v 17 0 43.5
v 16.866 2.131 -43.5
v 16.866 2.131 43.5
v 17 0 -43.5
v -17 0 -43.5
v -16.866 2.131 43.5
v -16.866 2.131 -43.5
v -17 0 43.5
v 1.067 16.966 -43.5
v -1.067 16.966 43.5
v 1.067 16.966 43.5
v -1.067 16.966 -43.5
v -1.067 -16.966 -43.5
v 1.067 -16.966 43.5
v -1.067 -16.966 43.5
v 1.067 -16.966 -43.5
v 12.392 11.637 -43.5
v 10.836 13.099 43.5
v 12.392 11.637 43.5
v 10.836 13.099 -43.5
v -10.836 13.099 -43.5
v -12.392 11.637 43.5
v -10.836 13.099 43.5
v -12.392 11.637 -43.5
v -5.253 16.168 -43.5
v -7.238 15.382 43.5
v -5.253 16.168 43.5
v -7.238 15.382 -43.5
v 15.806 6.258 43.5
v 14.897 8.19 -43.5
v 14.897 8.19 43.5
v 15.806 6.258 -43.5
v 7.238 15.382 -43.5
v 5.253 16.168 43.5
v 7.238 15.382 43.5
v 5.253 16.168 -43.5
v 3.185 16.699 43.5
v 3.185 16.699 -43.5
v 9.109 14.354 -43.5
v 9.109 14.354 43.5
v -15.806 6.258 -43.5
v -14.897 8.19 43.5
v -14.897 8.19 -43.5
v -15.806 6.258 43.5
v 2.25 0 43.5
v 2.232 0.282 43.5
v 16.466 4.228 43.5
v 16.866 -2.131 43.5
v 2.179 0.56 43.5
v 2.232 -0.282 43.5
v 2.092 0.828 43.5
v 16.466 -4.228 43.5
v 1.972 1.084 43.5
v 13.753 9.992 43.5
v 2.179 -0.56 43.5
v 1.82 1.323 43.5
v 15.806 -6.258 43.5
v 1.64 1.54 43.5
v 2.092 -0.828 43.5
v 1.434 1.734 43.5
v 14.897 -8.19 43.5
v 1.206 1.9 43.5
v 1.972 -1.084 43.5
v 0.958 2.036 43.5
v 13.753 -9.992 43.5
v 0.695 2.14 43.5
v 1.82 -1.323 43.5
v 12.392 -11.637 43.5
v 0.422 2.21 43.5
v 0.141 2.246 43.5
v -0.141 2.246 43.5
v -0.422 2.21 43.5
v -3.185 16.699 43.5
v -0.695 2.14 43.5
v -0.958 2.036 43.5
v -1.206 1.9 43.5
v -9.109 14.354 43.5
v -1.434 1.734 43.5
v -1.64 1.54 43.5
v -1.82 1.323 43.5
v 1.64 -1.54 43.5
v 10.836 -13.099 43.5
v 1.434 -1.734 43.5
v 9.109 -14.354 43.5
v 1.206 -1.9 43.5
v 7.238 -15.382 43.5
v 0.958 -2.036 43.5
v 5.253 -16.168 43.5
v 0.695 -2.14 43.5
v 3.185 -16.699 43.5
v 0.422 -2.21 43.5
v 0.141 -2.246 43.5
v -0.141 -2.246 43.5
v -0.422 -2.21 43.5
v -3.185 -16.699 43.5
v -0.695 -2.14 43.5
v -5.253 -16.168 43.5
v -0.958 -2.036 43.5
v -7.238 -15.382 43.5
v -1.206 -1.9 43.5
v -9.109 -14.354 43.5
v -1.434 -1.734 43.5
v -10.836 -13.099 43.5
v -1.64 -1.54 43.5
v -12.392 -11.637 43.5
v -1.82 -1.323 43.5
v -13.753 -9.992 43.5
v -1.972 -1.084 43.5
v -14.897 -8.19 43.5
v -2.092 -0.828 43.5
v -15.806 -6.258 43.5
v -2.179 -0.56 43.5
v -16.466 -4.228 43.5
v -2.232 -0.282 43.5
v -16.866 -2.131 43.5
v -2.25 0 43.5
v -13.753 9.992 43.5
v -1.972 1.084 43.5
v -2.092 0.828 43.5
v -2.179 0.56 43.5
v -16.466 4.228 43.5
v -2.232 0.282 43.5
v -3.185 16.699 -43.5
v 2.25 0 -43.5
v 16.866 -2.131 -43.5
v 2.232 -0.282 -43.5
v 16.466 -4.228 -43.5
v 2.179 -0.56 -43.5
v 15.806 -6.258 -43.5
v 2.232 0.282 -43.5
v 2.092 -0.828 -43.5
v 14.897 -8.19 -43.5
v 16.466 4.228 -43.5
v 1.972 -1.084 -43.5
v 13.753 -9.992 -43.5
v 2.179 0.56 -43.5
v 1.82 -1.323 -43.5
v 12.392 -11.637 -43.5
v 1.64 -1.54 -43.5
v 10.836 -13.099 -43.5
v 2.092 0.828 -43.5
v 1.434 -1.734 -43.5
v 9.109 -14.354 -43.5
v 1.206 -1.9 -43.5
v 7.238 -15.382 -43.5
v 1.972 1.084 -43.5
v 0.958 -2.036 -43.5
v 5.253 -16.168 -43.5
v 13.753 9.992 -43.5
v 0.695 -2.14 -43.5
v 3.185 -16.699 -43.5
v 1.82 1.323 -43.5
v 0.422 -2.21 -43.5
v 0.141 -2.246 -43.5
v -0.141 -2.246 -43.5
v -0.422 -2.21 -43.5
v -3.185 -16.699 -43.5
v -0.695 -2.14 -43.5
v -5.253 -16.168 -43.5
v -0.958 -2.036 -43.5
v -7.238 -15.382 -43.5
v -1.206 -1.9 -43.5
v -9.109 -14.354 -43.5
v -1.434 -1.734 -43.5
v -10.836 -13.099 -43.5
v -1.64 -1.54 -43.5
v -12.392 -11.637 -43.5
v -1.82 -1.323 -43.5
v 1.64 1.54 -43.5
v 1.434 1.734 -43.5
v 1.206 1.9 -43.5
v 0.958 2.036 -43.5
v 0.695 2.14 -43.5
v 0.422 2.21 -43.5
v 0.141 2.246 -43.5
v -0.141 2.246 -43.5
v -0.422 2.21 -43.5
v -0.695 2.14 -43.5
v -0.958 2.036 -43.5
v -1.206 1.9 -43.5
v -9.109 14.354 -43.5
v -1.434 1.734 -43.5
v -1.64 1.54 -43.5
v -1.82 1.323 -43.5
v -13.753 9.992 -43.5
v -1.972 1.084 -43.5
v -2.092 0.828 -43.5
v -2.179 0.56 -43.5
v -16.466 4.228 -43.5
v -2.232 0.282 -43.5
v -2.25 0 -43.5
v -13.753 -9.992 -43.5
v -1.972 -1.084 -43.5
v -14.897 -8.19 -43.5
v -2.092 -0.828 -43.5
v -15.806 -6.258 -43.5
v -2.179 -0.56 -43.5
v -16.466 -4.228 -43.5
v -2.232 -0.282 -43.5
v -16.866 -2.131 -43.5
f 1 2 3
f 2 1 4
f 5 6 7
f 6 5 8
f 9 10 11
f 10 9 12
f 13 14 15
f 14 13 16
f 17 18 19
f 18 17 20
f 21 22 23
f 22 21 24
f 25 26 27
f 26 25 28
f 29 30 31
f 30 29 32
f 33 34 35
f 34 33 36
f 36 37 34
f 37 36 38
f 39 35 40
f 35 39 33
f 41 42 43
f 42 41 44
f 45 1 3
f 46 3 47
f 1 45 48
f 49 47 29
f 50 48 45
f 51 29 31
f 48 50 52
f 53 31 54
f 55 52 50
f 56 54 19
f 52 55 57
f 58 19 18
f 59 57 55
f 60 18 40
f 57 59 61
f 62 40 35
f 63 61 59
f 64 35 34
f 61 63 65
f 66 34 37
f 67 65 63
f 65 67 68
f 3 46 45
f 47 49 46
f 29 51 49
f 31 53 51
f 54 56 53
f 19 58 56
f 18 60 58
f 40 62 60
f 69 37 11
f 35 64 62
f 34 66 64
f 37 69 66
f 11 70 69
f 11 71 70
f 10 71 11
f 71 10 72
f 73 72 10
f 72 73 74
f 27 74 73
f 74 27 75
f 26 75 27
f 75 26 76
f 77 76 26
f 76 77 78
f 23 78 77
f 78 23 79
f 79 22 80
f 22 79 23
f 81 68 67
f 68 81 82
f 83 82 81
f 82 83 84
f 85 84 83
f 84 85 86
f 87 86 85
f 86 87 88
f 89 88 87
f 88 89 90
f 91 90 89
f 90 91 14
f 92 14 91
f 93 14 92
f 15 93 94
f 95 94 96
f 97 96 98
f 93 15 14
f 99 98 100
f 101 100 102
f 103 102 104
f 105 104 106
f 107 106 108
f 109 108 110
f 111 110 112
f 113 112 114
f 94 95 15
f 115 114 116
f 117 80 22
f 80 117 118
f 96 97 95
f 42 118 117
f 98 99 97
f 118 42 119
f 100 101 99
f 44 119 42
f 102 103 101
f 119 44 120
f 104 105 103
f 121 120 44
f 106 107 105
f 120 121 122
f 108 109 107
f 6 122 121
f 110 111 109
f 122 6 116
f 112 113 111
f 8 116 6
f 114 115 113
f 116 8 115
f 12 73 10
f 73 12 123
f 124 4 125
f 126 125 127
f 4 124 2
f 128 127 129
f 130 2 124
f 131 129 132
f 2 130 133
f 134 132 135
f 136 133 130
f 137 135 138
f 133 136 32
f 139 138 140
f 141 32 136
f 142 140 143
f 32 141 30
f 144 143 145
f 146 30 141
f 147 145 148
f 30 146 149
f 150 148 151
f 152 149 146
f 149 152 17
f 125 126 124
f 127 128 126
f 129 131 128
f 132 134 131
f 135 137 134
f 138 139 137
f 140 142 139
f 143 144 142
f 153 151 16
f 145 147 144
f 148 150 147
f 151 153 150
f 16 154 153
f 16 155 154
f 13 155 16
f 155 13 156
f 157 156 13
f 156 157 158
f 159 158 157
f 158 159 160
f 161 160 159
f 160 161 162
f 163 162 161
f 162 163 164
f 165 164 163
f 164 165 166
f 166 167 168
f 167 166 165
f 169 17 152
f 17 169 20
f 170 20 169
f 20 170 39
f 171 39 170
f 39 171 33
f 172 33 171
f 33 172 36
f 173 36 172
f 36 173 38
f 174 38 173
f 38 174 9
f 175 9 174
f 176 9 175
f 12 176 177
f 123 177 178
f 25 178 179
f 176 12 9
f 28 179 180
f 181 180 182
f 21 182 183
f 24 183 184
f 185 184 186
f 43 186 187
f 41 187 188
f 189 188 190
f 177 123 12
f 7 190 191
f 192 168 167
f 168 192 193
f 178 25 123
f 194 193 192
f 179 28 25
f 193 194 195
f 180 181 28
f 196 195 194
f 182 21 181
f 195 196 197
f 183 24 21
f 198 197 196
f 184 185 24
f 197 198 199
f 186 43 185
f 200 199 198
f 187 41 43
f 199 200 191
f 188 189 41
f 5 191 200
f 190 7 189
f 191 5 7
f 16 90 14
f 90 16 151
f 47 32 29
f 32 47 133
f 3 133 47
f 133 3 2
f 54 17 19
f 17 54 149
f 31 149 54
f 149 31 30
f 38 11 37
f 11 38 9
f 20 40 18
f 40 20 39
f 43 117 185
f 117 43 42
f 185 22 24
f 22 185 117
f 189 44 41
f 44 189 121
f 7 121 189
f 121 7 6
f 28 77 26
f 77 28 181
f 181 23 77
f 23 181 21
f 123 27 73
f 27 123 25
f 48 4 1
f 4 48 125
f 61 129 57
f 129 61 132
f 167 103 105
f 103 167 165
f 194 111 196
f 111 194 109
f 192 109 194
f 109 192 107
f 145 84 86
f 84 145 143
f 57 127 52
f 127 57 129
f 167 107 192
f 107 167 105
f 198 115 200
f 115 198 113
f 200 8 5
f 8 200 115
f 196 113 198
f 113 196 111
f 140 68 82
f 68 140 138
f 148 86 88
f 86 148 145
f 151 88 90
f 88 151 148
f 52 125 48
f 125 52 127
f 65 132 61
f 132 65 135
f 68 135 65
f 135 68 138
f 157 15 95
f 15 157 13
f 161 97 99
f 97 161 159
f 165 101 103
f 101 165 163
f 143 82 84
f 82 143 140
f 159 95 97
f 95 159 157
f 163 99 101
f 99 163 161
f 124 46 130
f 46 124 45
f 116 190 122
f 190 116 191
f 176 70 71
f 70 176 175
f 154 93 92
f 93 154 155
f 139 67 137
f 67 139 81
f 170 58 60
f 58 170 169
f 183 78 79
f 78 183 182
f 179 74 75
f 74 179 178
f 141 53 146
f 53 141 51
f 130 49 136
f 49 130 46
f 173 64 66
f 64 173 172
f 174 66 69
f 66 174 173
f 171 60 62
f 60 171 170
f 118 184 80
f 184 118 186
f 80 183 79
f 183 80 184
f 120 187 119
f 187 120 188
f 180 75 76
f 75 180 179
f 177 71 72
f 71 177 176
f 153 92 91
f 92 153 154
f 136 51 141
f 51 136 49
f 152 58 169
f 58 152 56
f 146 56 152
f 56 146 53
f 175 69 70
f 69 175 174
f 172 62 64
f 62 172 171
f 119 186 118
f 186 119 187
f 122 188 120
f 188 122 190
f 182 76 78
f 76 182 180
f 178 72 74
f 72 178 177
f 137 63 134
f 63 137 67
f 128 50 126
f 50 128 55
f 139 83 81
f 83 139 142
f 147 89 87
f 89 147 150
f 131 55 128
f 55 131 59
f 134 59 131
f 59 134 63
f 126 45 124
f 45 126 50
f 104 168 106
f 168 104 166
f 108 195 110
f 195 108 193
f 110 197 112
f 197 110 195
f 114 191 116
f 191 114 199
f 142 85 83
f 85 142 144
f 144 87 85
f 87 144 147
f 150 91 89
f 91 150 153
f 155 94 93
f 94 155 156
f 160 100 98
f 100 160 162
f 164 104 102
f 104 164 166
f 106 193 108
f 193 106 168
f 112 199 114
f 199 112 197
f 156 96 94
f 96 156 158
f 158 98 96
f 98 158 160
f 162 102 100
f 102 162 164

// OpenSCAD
$fn = 50;


difference() {
	union() {
		translate(v = [0, 0, -43.5000000000]) {
			cylinder(h = 87, r = 17.0000000000);
		}
	}
	union() {
		translate(v = [0, 0, -100.0000000000]) {
			cylinder(h = 200, r = 2.2500000000);
		}
	}
}
